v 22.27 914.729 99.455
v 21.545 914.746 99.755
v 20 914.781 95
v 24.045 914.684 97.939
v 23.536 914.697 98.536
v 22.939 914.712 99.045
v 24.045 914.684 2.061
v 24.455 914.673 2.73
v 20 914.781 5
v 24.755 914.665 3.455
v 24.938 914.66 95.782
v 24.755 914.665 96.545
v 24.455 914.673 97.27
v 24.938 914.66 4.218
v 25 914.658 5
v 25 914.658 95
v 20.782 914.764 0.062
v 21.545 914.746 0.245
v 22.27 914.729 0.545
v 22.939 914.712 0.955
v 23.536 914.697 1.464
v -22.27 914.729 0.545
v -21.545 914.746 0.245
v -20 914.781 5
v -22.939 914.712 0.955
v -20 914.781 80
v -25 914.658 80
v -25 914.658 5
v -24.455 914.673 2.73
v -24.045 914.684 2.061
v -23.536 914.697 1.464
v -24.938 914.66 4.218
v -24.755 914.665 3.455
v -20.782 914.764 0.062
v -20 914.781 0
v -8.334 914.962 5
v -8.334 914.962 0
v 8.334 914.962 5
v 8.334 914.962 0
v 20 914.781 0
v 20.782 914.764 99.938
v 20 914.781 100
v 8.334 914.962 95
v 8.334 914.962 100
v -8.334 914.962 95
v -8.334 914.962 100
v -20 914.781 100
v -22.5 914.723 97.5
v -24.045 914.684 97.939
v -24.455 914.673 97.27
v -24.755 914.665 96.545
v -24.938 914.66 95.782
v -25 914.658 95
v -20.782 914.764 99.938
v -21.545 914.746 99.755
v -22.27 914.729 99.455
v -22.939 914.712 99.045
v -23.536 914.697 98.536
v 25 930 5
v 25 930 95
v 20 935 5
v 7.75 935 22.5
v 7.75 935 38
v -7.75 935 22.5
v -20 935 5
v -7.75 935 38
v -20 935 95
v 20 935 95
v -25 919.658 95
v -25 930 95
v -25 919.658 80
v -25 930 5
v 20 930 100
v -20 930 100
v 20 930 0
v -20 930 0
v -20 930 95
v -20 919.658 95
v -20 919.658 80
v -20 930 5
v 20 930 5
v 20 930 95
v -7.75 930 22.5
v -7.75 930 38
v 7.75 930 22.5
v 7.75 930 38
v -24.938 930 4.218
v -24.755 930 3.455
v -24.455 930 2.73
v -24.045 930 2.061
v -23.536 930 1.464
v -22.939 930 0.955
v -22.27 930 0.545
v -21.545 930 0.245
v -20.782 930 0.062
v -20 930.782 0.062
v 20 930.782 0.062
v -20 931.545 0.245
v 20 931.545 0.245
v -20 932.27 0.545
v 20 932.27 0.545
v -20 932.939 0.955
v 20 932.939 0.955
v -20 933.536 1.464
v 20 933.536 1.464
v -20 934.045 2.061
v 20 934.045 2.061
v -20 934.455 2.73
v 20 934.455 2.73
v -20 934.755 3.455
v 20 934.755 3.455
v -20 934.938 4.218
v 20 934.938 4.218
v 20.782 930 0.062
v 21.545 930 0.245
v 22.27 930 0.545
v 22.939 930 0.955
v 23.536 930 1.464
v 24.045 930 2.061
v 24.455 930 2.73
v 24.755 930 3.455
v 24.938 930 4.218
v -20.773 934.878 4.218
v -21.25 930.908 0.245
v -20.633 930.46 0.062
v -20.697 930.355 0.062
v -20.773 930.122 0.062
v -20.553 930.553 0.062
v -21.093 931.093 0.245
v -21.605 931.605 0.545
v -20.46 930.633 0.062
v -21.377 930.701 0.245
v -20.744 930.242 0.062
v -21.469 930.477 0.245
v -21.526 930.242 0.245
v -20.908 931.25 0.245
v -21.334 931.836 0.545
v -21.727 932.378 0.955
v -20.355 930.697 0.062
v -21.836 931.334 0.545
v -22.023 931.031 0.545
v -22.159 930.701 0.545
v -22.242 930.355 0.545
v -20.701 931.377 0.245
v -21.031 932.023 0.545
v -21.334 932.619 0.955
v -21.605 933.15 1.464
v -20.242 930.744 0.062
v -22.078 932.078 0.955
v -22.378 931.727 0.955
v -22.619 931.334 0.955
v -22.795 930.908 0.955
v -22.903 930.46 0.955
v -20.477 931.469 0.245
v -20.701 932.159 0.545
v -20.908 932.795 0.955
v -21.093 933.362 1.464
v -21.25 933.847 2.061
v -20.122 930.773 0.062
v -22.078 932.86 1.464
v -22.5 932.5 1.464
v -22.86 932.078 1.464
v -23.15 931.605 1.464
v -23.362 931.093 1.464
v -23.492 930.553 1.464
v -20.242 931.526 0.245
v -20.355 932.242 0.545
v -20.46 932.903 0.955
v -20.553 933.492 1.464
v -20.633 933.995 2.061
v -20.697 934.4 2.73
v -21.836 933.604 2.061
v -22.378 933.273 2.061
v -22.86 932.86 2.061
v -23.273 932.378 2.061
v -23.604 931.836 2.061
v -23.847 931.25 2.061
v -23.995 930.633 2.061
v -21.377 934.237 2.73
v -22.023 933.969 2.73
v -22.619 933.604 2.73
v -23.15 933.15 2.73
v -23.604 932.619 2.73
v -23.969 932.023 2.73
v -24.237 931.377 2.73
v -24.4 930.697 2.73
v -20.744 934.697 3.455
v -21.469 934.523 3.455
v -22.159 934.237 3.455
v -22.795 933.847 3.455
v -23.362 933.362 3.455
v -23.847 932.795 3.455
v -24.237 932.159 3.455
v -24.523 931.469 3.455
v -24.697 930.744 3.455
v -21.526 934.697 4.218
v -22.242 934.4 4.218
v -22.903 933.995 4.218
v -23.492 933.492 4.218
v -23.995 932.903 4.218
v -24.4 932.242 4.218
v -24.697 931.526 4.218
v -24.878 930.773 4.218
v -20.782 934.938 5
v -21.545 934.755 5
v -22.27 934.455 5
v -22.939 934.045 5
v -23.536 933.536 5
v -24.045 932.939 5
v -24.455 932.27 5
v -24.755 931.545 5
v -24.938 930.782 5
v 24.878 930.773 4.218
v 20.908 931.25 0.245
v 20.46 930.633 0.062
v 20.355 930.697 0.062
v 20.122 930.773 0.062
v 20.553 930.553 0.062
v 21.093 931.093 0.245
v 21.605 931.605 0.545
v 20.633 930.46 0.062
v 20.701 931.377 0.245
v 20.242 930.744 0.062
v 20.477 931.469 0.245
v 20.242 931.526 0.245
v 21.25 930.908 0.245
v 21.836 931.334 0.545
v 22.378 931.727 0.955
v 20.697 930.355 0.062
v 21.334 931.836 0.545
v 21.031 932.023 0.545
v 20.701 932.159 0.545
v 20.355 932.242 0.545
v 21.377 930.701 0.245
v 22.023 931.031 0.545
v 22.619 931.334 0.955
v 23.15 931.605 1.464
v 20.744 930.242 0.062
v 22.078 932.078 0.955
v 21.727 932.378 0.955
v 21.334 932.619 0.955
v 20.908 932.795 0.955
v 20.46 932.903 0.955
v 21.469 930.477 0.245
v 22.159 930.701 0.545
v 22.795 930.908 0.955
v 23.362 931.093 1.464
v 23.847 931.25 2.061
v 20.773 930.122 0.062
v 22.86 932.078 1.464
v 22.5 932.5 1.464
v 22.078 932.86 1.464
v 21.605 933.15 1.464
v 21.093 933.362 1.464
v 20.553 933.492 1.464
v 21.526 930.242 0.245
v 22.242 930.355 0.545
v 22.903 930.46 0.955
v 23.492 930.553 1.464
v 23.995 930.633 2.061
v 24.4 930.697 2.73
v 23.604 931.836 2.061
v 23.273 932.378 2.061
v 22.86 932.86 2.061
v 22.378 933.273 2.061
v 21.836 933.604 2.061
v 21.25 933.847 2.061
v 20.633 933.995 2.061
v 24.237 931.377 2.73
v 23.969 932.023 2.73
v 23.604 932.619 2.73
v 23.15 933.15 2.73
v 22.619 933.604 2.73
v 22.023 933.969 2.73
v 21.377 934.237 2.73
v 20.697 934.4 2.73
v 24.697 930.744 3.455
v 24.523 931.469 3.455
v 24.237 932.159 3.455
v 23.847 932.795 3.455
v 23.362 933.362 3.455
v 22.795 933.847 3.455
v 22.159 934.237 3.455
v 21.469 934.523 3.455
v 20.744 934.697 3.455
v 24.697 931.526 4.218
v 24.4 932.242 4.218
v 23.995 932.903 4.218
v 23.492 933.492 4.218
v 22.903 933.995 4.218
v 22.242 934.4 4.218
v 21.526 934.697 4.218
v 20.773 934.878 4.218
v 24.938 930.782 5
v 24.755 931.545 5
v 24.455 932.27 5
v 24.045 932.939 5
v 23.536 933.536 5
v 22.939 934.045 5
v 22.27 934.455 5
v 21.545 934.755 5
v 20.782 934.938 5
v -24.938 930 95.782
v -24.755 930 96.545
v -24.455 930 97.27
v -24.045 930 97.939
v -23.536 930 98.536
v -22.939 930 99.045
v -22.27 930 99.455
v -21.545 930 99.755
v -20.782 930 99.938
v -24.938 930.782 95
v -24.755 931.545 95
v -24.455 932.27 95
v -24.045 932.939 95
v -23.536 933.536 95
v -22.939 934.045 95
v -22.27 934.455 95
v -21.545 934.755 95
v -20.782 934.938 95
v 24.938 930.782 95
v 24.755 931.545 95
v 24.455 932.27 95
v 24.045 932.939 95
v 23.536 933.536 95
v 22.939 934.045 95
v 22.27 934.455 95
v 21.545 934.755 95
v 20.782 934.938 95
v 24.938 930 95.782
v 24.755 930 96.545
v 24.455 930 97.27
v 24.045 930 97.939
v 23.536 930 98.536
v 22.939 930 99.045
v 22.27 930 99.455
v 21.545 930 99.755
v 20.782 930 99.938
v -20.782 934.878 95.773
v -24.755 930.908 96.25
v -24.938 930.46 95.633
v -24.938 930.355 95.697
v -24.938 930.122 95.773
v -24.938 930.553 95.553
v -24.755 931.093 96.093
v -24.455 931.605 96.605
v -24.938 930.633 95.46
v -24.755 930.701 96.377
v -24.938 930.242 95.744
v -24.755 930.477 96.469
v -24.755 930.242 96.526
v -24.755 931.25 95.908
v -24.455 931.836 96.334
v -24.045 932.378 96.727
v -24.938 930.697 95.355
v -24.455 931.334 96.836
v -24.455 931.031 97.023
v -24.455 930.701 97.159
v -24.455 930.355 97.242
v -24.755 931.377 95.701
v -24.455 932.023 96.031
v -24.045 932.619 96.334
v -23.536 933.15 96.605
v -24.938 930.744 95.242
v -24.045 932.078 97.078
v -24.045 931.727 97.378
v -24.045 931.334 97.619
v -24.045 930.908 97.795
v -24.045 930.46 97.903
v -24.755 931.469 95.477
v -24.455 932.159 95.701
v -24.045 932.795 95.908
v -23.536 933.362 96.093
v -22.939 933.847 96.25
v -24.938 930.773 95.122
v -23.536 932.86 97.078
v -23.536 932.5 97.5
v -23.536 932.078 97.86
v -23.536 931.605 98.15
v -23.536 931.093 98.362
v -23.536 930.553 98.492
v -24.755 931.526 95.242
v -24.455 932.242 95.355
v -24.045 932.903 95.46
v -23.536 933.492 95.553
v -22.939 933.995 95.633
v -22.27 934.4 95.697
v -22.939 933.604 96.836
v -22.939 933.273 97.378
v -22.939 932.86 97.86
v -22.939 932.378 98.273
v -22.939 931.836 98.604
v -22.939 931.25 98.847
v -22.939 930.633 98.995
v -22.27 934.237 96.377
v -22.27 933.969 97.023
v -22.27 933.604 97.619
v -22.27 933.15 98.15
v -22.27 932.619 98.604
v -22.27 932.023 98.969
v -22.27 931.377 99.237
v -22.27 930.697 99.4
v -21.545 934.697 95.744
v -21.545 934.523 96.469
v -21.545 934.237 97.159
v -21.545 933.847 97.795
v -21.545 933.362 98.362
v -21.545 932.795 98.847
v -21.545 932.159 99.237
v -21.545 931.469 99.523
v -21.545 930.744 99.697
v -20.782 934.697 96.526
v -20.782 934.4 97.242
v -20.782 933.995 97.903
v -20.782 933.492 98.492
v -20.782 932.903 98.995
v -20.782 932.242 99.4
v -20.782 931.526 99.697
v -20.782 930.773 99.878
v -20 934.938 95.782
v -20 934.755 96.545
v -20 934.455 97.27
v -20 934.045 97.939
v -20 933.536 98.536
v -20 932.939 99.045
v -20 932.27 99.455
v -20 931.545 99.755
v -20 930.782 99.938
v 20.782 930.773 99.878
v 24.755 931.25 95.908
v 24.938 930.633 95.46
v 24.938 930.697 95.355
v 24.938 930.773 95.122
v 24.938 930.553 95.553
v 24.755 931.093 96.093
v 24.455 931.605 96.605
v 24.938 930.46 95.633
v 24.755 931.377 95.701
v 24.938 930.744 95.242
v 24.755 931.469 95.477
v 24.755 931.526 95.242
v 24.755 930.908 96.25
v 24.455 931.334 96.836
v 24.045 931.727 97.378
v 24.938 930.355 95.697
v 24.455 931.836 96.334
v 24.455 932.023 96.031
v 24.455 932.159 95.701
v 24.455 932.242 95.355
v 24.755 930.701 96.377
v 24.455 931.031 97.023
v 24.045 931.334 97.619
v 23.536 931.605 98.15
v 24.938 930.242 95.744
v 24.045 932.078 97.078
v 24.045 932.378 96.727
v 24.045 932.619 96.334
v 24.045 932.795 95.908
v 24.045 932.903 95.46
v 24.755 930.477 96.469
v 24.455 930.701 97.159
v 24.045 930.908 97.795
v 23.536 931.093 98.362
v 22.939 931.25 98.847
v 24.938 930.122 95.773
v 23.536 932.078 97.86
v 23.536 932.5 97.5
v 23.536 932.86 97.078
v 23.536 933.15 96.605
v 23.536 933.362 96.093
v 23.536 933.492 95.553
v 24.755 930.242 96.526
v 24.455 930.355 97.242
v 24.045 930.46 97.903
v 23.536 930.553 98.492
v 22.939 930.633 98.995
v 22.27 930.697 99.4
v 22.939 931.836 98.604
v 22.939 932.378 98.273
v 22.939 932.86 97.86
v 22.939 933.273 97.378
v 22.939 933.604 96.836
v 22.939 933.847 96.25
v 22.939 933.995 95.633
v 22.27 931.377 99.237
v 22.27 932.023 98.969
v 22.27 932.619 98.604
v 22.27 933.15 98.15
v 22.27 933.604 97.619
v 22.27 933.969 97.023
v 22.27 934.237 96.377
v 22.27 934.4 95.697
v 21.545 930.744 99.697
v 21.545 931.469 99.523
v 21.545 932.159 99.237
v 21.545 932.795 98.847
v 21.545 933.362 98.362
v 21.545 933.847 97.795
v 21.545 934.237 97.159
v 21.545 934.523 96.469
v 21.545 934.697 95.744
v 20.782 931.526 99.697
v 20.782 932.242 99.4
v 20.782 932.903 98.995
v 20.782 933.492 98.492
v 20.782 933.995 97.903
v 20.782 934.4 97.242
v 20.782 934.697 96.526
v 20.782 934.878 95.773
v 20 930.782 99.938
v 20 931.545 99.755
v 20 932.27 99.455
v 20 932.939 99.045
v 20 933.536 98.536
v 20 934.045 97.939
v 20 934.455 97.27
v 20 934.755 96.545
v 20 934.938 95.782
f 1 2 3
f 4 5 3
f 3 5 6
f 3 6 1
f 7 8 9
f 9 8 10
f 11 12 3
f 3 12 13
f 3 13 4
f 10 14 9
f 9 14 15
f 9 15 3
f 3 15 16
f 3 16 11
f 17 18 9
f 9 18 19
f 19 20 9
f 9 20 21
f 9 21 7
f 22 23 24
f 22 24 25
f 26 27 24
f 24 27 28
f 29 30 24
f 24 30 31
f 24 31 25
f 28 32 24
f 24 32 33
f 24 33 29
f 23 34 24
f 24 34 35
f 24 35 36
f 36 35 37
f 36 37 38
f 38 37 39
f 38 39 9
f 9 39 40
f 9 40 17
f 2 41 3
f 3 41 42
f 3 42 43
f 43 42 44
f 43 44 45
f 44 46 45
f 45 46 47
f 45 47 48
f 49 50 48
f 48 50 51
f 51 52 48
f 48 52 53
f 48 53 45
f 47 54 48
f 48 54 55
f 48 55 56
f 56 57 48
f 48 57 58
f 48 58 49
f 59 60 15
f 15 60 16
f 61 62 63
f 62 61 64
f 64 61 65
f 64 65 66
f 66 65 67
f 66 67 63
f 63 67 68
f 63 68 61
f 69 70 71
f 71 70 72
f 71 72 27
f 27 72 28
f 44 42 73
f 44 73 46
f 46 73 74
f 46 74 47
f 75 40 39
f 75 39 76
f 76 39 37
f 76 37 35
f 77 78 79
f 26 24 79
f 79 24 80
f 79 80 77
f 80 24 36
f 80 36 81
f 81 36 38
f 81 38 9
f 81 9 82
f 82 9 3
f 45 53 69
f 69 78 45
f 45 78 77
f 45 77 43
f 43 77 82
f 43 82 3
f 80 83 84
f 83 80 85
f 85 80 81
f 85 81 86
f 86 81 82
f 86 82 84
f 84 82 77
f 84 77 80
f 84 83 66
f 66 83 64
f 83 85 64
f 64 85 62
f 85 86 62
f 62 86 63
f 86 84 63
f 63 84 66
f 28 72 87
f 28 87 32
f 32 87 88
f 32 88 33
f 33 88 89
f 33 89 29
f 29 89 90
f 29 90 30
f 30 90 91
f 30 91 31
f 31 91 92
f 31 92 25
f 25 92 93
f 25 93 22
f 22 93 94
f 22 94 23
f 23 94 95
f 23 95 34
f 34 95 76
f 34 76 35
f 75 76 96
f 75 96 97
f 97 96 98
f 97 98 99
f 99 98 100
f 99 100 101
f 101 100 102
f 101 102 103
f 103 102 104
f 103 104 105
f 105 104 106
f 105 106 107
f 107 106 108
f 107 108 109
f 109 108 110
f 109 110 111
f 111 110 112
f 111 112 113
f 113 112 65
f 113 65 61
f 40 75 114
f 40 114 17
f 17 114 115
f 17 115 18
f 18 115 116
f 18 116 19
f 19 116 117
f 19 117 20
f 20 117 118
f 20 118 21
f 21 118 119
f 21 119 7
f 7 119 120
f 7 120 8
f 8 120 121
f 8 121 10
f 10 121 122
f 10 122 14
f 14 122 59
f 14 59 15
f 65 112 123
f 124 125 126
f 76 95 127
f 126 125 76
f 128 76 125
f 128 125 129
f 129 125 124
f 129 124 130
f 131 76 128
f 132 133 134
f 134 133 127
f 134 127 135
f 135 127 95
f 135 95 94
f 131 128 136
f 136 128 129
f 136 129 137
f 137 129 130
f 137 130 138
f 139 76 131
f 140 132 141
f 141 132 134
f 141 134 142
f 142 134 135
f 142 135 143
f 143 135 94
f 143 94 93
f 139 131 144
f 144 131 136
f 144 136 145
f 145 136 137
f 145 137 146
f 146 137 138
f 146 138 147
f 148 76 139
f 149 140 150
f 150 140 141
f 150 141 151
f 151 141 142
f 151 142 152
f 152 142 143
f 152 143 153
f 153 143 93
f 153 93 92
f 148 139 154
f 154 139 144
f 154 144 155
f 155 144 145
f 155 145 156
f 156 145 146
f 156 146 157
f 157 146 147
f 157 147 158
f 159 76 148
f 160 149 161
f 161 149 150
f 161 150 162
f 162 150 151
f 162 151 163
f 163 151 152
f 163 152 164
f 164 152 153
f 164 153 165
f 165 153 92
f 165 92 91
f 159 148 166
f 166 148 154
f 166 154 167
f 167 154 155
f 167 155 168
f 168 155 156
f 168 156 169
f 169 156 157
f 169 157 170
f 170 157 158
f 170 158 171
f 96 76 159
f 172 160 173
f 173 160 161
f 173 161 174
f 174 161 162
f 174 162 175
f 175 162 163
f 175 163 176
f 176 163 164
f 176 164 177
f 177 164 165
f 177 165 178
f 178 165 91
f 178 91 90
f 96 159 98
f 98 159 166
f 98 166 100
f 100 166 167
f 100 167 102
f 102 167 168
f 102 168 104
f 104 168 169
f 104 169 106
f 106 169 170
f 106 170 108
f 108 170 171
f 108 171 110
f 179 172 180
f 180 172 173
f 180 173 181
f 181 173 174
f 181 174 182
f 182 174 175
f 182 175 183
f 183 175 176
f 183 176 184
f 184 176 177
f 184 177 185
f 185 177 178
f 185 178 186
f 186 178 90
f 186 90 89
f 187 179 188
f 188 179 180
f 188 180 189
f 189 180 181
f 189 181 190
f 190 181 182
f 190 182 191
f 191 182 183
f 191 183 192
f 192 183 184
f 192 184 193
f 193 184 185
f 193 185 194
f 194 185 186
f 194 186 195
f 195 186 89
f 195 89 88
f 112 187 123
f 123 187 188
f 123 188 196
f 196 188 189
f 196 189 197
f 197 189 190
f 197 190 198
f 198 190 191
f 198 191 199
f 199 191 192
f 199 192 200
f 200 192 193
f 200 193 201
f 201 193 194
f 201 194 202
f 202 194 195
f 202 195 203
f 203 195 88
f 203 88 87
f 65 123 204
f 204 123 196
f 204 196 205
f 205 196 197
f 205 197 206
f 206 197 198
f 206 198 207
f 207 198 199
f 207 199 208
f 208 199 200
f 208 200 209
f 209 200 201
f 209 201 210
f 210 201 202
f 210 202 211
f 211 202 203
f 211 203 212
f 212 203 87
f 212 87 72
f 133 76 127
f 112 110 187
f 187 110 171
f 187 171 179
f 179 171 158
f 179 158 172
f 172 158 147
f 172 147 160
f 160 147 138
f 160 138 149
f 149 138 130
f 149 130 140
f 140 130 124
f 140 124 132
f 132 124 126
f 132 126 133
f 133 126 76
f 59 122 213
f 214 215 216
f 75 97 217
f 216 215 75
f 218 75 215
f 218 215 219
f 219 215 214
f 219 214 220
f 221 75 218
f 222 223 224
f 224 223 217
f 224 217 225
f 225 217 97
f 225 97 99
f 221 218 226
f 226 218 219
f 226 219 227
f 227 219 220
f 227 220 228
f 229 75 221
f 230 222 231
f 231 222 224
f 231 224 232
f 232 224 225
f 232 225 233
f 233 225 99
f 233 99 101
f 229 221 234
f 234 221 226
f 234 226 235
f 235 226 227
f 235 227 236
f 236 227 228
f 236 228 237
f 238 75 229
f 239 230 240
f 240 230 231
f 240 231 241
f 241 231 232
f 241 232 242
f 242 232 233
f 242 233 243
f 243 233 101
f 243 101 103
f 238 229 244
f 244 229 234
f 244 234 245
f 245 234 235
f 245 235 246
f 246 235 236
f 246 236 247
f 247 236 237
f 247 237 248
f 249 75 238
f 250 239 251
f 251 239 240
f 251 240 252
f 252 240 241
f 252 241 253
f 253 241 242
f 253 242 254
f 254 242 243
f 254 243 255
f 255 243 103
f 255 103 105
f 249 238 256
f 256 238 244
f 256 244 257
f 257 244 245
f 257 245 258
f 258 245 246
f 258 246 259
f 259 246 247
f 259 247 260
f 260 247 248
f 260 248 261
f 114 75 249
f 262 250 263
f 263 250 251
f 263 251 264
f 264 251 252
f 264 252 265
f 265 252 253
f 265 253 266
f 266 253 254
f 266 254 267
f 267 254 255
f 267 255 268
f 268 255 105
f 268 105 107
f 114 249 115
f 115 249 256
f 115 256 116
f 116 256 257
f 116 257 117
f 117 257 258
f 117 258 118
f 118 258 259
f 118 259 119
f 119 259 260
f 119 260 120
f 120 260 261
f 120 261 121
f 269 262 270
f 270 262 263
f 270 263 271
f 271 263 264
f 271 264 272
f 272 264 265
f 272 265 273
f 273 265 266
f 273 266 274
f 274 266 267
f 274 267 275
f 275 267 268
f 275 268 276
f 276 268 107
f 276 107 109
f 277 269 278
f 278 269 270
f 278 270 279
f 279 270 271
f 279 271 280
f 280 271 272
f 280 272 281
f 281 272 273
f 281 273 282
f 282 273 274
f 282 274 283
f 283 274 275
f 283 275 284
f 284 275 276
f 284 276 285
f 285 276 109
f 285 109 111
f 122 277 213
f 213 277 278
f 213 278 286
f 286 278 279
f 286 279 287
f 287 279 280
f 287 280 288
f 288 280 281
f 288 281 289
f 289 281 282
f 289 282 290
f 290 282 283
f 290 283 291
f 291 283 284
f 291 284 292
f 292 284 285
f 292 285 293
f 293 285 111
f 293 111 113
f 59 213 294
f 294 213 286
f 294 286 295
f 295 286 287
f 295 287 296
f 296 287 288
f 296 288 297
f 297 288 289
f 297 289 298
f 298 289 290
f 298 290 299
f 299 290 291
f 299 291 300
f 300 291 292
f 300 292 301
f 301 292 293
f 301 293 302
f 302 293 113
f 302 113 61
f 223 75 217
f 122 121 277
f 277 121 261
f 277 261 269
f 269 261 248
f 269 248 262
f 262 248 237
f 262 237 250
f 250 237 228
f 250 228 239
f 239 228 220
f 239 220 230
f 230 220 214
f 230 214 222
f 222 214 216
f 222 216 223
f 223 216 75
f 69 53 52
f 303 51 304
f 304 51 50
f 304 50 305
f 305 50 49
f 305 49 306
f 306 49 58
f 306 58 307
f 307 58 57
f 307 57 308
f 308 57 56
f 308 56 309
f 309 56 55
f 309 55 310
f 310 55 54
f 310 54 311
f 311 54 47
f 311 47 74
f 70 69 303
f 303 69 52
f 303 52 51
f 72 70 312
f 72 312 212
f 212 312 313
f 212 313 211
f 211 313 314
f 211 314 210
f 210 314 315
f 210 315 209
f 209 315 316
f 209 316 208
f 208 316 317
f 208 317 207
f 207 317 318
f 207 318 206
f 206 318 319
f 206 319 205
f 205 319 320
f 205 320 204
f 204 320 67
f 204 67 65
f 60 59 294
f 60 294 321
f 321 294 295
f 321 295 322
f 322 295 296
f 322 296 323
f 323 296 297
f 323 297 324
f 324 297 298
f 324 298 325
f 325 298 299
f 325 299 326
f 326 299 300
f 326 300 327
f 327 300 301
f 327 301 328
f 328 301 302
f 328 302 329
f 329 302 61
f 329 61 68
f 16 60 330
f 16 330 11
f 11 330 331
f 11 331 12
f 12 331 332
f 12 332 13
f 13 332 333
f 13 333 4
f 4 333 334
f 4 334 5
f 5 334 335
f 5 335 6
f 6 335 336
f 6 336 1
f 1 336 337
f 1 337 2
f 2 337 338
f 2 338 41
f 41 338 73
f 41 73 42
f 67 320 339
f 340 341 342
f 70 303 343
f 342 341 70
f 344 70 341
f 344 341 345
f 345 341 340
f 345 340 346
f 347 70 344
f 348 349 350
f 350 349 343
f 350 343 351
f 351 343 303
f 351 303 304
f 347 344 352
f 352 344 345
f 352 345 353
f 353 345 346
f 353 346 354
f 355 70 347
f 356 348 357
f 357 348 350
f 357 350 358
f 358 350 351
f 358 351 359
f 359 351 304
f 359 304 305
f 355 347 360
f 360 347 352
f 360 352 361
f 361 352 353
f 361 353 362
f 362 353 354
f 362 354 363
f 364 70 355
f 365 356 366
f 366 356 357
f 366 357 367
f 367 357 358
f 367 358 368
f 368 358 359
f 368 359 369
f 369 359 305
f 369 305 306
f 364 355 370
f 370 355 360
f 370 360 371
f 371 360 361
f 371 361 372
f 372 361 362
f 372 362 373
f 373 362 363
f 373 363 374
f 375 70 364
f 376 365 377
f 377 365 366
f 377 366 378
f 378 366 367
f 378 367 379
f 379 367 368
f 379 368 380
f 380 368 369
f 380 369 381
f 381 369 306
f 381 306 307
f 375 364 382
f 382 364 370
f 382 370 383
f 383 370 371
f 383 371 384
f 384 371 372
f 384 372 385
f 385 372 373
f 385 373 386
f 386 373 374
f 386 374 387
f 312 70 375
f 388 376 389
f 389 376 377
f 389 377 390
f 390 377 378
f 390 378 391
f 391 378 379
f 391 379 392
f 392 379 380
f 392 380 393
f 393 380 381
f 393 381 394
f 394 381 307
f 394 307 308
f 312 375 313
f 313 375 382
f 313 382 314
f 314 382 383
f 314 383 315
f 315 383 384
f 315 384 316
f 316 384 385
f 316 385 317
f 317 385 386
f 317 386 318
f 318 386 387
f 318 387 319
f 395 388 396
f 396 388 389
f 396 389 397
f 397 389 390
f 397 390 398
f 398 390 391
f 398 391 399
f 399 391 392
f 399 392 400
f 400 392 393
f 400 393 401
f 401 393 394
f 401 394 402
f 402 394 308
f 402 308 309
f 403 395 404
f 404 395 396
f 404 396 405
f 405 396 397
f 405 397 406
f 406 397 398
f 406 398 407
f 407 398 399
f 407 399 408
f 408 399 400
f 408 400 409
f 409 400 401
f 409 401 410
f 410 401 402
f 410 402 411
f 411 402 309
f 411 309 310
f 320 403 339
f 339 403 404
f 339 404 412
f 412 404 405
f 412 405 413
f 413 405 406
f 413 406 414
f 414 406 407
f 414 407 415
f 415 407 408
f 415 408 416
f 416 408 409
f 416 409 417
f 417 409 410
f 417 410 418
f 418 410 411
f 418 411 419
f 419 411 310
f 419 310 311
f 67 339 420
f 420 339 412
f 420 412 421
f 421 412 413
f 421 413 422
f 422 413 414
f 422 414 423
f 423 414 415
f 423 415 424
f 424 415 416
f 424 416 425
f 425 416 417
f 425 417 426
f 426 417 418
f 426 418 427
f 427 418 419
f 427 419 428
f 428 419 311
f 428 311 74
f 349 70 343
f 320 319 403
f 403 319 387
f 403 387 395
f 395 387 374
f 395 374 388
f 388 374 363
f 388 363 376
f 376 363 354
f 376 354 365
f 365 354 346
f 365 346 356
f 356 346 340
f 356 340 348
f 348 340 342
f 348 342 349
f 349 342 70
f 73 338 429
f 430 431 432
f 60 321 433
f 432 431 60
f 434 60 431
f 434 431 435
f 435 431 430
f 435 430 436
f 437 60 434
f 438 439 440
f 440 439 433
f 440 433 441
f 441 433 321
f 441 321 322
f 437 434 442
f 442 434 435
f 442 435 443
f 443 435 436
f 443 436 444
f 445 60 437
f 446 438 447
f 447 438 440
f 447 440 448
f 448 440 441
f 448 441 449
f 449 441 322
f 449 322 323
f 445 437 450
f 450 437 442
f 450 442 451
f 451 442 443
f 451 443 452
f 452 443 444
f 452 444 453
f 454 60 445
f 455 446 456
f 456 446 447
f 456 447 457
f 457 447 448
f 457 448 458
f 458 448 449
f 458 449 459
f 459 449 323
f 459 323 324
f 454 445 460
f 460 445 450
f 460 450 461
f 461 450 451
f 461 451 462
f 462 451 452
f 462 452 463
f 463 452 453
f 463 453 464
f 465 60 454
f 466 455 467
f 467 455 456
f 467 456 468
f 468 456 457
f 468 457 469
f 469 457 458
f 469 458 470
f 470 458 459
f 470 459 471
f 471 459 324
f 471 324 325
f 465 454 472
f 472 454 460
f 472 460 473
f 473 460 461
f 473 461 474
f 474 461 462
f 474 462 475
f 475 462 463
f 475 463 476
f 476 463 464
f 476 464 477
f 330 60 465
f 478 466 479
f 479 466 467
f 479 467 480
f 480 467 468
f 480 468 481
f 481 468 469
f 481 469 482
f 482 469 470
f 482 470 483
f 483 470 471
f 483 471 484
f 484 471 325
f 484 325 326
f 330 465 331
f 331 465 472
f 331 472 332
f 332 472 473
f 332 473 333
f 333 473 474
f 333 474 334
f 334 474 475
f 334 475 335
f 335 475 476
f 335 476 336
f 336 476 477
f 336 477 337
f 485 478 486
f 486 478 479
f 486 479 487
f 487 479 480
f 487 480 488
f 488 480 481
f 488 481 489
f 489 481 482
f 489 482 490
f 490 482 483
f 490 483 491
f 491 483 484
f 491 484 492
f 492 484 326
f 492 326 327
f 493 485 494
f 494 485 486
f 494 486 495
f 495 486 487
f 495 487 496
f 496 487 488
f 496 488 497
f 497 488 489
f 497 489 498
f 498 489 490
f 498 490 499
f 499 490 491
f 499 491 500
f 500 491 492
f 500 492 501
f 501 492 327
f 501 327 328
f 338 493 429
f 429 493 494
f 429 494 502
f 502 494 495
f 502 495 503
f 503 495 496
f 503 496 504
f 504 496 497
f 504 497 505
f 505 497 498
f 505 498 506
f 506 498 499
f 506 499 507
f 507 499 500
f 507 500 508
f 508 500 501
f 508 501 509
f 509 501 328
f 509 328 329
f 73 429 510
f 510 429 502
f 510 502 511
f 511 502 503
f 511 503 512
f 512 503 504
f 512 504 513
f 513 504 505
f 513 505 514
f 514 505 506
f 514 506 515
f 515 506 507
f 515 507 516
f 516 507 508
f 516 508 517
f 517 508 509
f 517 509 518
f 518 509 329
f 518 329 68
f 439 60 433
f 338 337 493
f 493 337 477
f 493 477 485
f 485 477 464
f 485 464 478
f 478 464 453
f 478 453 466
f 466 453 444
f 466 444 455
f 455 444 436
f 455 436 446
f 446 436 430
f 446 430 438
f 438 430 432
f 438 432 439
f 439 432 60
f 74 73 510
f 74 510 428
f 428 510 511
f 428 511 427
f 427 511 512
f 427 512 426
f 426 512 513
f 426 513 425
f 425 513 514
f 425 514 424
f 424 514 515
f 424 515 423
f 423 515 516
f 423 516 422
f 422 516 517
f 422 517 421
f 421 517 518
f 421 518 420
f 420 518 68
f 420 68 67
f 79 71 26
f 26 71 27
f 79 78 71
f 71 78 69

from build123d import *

# Parameters (mm, degrees)
BOSS_EXTRUDE1_DEPTH = 100
SKETCH4_W           = 40
SKETCH4_H           = 90
CUT_EXTRUDE1_DEPTH  = 150
SKETCH6_W           = 50
SKETCH6_H           = 100
SKETCH6_W_2         = 15.5
SKETCH6_H_2         = 15.5
BOSS_EXTRUDE2_DEPTH = 5
FILLET1_R           = 5
SKETCH7_W           = 15
SKETCH7_H           = 5
CUT_EXTRUDE2_DEPTH  = 5


with BuildPart() as part:
    # Sketch3 → Boss-Extrude1 (new body)
    with BuildSketch(Plane.XY):
        with BuildLine():
            Line((25, 935), (-25, 935))
            Line((-25, 935), (-25, 914.658406182))
            ThreePointArc((-25, 914.658406182), (0, 915), (25, 914.658406182))
            Line((25, 914.658406182), (25, 935))
        make_face()
    extrude(amount=BOSS_EXTRUDE1_DEPTH)

    # Sketch4 → Cut-Extrude1 (cut)
    with BuildSketch(Plane(origin=(0, 935, 0), x_dir=(1, 0, 0), z_dir=(0, 1, 0))):
        with Locations((0, -50)):
            Rectangle(SKETCH4_W, SKETCH4_H)
    extrude(amount=-CUT_EXTRUDE1_DEPTH, mode=Mode.SUBTRACT)

    # Sketch6 → Boss-Extrude2 (add)
    with BuildSketch(Plane(origin=(0, 935, 0), x_dir=(1, 0, 0), z_dir=(0, 1, 0))):
        with Locations((0, -50)):
            Rectangle(SKETCH6_W, SKETCH6_H)
        with Locations((0, -30.25)):
            Rectangle(SKETCH6_W_2, SKETCH6_H_2, mode=Mode.SUBTRACT)
    extrude(amount=-BOSS_EXTRUDE2_DEPTH)

    # Fillet1
    fillet1_edges = [part.edges().sort_by_distance(p)[0] for p in [
        (25, 924.829203091, 100),
        (0, 935, 100),
        (-25, 924.829203091, 100),
        (-25, 924.829203091, 0),
        (0, 935, 0),
        (25, 924.829203091, 0),
        (-25, 935, 50),
        (25, 935, 50),
    ]]
    fillet(fillet1_edges, radius=FILLET1_R)

    # Sketch7 → Cut-Extrude2 (cut)
    with BuildSketch(Plane.ZY.offset(25)):
        with Locations((87.5, 917.158406182)):
            Rectangle(SKETCH7_W, SKETCH7_H)
    extrude(amount=-CUT_EXTRUDE2_DEPTH, mode=Mode.SUBTRACT)


solid = part.part
